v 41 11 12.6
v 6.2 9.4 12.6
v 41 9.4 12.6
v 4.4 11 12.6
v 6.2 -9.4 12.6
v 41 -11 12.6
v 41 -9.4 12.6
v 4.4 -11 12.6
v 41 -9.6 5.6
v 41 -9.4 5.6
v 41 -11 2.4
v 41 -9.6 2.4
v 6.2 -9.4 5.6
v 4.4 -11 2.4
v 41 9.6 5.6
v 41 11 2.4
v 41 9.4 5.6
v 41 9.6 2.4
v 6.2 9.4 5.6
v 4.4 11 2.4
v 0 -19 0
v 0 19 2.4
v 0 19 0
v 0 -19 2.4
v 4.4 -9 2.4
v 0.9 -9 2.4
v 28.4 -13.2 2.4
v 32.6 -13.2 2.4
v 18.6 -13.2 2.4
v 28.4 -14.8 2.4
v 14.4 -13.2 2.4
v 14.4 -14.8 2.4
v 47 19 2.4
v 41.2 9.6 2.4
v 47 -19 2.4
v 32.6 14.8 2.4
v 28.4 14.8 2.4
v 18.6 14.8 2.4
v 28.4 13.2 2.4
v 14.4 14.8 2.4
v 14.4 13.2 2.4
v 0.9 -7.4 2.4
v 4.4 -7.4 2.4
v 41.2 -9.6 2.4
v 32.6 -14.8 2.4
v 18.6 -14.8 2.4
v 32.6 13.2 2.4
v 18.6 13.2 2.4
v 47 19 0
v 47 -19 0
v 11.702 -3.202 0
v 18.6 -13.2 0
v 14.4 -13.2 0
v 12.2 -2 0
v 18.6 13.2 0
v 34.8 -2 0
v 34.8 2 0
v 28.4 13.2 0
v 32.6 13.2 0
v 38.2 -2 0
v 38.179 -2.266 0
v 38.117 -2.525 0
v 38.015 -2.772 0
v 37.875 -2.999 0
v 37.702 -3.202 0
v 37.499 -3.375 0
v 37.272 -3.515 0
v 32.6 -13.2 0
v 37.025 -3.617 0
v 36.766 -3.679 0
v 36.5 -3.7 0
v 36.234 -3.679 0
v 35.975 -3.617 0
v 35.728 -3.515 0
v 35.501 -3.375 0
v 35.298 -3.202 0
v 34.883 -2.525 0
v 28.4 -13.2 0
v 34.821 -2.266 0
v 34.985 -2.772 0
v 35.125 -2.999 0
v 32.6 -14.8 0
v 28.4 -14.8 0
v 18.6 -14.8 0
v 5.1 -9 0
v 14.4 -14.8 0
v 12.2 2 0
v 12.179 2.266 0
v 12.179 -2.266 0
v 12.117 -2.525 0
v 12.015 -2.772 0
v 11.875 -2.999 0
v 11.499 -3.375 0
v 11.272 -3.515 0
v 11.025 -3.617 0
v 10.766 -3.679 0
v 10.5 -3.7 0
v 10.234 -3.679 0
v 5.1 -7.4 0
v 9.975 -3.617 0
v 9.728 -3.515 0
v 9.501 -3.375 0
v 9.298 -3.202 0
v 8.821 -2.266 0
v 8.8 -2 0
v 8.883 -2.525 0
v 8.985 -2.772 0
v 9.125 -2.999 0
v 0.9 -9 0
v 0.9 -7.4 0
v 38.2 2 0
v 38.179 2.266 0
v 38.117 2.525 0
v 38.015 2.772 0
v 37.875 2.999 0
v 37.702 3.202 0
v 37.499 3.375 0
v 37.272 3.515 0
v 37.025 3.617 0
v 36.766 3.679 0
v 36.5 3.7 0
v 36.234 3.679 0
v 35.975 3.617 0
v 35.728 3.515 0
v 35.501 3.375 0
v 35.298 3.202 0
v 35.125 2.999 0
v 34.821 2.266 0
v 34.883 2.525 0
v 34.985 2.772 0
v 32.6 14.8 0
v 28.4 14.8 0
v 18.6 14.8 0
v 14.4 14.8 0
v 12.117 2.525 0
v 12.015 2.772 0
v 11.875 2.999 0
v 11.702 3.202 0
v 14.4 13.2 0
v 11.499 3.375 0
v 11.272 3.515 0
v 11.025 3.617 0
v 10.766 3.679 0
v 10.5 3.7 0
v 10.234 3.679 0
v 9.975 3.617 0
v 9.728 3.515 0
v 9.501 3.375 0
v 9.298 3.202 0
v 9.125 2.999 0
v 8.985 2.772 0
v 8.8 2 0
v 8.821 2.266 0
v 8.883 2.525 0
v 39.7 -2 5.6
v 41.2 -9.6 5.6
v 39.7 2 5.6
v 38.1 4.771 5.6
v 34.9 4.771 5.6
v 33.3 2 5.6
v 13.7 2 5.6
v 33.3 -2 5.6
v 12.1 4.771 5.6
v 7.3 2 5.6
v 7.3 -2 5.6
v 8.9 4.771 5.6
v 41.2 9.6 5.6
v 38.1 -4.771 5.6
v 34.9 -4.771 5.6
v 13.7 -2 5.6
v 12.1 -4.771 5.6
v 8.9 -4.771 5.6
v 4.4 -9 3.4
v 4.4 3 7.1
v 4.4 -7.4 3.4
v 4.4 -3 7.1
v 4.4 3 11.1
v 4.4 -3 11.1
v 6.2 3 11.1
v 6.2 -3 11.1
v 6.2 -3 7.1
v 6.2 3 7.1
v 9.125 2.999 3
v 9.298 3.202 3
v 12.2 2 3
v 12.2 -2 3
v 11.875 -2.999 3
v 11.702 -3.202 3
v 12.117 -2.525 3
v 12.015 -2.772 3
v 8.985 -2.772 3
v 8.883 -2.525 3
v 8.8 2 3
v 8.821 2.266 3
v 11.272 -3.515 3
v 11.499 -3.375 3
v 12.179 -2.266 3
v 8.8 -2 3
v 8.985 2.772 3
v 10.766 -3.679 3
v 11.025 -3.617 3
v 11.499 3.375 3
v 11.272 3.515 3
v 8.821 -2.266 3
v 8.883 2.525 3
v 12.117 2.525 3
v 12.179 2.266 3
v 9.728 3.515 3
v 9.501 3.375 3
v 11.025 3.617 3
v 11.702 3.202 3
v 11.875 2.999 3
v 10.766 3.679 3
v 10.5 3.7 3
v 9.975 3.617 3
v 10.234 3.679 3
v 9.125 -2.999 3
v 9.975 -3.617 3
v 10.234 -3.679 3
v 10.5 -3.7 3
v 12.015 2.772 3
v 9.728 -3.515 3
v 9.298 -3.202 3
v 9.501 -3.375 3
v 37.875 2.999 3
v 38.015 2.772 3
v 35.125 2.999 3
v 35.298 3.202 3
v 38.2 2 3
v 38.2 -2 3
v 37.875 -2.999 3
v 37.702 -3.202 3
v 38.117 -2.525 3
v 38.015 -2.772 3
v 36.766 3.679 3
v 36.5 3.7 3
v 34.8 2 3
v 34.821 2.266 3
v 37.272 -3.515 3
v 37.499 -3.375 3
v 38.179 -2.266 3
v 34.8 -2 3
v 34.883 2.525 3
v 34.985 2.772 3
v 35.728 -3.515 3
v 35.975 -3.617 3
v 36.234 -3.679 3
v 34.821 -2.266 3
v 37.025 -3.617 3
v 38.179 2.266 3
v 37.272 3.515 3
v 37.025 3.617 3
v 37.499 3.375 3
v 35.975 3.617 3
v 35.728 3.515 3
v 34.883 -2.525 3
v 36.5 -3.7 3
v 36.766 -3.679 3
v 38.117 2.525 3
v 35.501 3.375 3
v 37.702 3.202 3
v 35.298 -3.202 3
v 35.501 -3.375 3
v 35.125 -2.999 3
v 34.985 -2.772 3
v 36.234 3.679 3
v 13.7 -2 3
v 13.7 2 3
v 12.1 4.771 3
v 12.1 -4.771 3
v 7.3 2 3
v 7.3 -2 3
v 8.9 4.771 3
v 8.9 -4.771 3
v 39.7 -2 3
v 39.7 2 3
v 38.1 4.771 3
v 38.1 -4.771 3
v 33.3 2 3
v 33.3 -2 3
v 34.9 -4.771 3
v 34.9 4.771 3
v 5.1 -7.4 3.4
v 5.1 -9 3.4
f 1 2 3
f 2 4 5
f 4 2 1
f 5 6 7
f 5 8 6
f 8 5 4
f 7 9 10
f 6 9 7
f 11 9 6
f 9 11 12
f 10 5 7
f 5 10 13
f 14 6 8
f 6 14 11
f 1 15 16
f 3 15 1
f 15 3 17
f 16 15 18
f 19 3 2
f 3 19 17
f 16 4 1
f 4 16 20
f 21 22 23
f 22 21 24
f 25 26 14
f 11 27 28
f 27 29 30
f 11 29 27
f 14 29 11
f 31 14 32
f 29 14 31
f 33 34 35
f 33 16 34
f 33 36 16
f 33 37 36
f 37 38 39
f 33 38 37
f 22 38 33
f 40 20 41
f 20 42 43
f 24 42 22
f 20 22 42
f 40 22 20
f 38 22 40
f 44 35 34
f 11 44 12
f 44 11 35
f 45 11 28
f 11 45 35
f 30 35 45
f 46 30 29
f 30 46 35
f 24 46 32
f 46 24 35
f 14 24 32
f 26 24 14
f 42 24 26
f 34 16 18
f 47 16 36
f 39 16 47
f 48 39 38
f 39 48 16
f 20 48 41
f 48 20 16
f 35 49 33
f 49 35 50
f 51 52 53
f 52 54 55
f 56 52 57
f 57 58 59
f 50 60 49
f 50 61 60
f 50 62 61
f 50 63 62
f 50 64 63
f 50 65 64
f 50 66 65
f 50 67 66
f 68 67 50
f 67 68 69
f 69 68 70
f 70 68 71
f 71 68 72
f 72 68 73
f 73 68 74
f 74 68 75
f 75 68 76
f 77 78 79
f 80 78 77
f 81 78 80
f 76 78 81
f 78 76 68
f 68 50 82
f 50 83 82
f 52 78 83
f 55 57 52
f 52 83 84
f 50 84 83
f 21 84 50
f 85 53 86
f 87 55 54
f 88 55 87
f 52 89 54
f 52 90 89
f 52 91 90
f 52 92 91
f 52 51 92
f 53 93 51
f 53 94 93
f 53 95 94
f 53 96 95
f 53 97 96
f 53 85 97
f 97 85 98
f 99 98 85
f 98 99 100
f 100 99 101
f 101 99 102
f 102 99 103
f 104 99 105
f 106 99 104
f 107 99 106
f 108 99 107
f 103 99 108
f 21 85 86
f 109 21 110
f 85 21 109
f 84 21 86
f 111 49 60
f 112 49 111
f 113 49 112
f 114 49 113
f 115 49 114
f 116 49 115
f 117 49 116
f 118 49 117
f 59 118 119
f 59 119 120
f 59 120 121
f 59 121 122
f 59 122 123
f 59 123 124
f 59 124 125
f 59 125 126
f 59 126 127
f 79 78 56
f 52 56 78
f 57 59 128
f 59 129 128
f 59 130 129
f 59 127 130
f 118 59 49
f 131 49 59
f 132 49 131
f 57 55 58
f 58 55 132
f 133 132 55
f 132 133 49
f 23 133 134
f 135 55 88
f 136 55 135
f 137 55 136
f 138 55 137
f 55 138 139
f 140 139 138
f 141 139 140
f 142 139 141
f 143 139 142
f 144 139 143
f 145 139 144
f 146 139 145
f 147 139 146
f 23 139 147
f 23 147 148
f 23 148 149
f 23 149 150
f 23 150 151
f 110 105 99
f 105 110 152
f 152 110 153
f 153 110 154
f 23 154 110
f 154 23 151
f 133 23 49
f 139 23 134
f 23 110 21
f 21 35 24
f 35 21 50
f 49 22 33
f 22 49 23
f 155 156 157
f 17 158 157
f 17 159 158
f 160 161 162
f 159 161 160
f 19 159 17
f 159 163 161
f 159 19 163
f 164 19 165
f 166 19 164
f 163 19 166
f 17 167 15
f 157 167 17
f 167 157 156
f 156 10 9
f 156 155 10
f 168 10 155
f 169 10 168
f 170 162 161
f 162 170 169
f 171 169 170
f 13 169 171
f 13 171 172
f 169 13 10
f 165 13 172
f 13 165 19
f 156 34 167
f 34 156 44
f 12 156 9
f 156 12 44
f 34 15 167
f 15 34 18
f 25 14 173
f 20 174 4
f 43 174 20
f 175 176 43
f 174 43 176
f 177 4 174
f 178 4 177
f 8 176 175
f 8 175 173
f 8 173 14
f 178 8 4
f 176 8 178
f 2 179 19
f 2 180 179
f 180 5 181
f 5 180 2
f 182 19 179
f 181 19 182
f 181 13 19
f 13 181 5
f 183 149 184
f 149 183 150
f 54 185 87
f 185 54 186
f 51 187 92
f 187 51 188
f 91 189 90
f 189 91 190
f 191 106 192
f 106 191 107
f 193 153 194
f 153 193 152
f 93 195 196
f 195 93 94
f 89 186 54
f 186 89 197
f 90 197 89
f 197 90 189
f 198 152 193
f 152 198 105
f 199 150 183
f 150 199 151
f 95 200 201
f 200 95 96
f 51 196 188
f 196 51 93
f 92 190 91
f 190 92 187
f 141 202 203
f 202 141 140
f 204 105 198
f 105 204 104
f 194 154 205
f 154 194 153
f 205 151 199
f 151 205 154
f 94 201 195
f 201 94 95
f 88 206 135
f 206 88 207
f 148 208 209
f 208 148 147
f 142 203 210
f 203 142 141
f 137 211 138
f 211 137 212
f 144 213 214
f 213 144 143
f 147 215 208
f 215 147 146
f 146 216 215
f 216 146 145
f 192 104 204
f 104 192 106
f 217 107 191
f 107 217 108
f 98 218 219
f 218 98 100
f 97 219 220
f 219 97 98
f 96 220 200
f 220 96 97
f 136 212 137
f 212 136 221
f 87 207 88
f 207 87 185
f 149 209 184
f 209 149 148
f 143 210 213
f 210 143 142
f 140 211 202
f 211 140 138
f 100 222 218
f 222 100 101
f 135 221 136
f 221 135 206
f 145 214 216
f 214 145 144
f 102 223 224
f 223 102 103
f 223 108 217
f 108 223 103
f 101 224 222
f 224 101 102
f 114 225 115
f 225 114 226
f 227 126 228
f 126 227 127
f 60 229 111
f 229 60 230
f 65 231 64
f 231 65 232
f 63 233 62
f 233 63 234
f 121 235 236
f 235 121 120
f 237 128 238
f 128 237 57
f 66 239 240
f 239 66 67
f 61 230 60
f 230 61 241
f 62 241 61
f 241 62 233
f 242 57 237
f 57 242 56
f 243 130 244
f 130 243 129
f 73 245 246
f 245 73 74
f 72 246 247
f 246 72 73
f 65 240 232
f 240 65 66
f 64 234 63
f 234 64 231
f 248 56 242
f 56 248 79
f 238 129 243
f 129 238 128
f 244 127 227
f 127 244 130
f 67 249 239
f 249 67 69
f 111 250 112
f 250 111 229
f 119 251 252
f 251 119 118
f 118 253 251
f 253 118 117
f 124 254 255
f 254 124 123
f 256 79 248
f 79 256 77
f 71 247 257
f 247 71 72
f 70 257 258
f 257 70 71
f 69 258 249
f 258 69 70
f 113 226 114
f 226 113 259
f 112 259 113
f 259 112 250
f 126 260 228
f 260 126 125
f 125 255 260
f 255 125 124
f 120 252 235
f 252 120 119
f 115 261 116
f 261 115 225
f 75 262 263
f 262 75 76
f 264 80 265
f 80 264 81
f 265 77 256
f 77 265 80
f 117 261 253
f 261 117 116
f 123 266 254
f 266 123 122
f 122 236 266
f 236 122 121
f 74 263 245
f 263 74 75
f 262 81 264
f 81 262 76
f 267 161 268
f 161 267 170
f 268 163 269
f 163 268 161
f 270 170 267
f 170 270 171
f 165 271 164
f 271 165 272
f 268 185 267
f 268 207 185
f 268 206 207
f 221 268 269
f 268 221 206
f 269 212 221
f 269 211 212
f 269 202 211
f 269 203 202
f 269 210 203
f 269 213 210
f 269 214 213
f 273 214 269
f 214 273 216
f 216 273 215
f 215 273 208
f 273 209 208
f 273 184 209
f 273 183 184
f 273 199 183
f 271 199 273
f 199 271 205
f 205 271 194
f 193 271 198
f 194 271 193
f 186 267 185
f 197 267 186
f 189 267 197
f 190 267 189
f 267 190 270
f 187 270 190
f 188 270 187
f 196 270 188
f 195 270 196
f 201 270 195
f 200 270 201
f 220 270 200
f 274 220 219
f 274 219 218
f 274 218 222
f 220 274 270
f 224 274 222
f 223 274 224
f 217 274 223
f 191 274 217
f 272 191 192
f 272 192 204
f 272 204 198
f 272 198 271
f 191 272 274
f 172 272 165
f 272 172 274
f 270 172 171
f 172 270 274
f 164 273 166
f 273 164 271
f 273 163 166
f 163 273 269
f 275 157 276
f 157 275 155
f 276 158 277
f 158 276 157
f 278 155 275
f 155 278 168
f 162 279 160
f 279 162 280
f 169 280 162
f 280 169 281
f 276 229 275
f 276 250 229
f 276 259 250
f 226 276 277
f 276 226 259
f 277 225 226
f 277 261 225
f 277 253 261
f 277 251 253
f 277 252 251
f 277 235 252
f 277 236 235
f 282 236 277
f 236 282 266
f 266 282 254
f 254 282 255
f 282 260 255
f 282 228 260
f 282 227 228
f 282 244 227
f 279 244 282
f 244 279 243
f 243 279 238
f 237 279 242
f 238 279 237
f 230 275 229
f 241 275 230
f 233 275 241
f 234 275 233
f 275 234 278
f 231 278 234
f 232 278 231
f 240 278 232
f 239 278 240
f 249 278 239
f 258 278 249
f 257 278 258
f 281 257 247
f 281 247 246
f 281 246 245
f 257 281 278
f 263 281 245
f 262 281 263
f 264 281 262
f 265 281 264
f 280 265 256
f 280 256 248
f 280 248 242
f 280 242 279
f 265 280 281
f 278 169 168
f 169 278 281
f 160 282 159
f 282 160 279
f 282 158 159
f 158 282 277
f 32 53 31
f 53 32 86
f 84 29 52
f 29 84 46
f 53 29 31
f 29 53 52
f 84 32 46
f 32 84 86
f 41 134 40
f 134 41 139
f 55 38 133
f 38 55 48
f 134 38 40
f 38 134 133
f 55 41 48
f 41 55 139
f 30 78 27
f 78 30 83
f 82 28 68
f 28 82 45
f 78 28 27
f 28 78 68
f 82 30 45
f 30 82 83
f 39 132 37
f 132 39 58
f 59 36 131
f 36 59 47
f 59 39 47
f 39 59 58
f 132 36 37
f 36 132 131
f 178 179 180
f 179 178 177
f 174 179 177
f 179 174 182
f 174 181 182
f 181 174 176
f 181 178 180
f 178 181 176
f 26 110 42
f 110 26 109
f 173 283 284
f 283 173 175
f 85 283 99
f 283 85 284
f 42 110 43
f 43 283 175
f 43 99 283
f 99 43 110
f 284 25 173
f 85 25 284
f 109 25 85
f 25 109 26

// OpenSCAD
// Soporte del TF-Luna para el pod del gimbal BaseCam (variante C). COMPILADO (OpenSCAD 2021.01), NO IMPRESO.
// Ejes: X = adelante (la lente del Luna mira a +X, igual que la cámara USB), Y = izquierda, Z = arriba.
//
// FOTOS 14-18 (2026-10-18): el pod tiene una placa negra con una ranura larga (riel) y dos tornillos de cabeza cilíndrica en
// los extremos de la ranura; hoy el TF03 cuelga de esa placa y la cámara USB (placa verde redonda) va encima, atornillada al
// riel. En la variante C el TF03 se va y el TF-Luna ocupa su lugar. Esta pieza se atornilla por esa ranura con dos tornillos
// (agujeros alargados separados `riel_sep`, a lo largo de `riel_eje`); las tuercas quedan escondidas en un bolsillo hexagonal
// bajo el Luna (por eso hay un pedestal de `piso_extra` mm).
// PENDIENTES de medir (los valores de abajo son de RELLENO, no de la pieza real): riel_sep, riel_eje, tornillo_d.
//
// Ligera (≈5-8 g sin el Luna): no hace palanca. Aliviadero del cable: puente trasero con ventana y una amarra.
// MEDIR también: el Luna (35 x 18 x 21 mm: hoja de datos de memoria) y la altura libre bajo/sobre el riel.

$fn = 40;
S_L = 35; S_W = 18; S_H = 21;   // TF-Luna — MEDIR
riel_sep = 26;                  // PENDIENTE: distancia entre los dos tornillos del riel (de relleno)
riel_eje = "X";                 // PENDIENTE: la ranura va a lo largo de X (adelante) o de Y (de lado)
tornillo_d = 3.4;               // PENDIENTE: M3 si los tornillos son M3
tol = 0.4;
t = 2.4;                        // espesor de la placa
piso_extra = 3.2;               // pedestal bajo el Luna: aloja las tuercas
pared = 1.6; alto_pared = 7;
amarra_w = 4.2; amarra_t = 1.6;
margen = 6;
L = max(S_L + 2 * margen, riel_sep + 14);
W = S_W + 2 * (pared + tol) + 2 * 8;
z0 = t + piso_extra;            // el Luna se apoya aquí
x0 = (L - S_L) / 2;             // inicio del Luna en X

module agujeros_riel(h) {       // dos agujeros alargados (4 mm de recorrido)
    for (s = [-1, 1]) translate([L/2, 0, 0]) rotate([0, 0, riel_eje == "X" ? 0 : 90]) translate([s * riel_sep/2, 0, 0])
        hull() for (dy = [-2, 2]) translate([0, dy, -1]) cylinder(d = tornillo_d, h = h + 2);
}

difference() {
    union() {
        translate([0, -W/2, 0]) cube([L, W, t]);
        translate([x0 - 0.2, -(S_W/2 + tol) - 0.2, 0]) cube([S_L + 0.4, S_W + 2*tol + 0.4, z0]);   // pedestal (solapa 0.2 con las paredes)
        for (s = [-1, 1]) translate([x0, s * (S_W/2 + tol) + (s > 0 ? 0 : -pared), t - 0.1]) cube([S_L, pared, alto_pared + piso_extra + 0.1]);
        translate([x0 - pared, -(S_W/2 + tol + pared), t - 0.1]) cube([pared + 0.2, S_W + 2*(tol + pared), alto_pared + piso_extra + 0.1]);   // puente trasero
    }
    agujeros_riel(z0);
    // bolsillo hexagonal de tuerca M3 (5.5 mm entre caras, 2.6 de hondo) bajo el Luna: se pierde en el pedestal
    for (s = [-1, 1]) translate([L/2, 0, 0]) rotate([0, 0, riel_eje == "X" ? 0 : 90]) translate([s * riel_sep/2, 0, 0])
        hull() for (dy = [-2, 2]) translate([0, dy, z0 - 2.6]) cylinder(d = 6.4, h = 2.7, $fn = 6);
    // ventana del puente para el cable
    translate([x0 - pared - 1, -3, z0 + 1.5]) cube([pared + 2, 6, 4]);
    // amarras: dos a cada lado del Luna y una para el cable
    for (px = [x0 + S_L*0.3, x0 + S_L*0.7]) for (s = [-1, 1])
        translate([px - amarra_w/2, s * (S_W/2 + tol + pared + 3) - amarra_t/2, -1]) cube([amarra_w, amarra_t, t + 2]);
    translate([x0/2 - amarra_w/2, -9, -1]) cube([amarra_w, amarra_t, t + 2]);
}
